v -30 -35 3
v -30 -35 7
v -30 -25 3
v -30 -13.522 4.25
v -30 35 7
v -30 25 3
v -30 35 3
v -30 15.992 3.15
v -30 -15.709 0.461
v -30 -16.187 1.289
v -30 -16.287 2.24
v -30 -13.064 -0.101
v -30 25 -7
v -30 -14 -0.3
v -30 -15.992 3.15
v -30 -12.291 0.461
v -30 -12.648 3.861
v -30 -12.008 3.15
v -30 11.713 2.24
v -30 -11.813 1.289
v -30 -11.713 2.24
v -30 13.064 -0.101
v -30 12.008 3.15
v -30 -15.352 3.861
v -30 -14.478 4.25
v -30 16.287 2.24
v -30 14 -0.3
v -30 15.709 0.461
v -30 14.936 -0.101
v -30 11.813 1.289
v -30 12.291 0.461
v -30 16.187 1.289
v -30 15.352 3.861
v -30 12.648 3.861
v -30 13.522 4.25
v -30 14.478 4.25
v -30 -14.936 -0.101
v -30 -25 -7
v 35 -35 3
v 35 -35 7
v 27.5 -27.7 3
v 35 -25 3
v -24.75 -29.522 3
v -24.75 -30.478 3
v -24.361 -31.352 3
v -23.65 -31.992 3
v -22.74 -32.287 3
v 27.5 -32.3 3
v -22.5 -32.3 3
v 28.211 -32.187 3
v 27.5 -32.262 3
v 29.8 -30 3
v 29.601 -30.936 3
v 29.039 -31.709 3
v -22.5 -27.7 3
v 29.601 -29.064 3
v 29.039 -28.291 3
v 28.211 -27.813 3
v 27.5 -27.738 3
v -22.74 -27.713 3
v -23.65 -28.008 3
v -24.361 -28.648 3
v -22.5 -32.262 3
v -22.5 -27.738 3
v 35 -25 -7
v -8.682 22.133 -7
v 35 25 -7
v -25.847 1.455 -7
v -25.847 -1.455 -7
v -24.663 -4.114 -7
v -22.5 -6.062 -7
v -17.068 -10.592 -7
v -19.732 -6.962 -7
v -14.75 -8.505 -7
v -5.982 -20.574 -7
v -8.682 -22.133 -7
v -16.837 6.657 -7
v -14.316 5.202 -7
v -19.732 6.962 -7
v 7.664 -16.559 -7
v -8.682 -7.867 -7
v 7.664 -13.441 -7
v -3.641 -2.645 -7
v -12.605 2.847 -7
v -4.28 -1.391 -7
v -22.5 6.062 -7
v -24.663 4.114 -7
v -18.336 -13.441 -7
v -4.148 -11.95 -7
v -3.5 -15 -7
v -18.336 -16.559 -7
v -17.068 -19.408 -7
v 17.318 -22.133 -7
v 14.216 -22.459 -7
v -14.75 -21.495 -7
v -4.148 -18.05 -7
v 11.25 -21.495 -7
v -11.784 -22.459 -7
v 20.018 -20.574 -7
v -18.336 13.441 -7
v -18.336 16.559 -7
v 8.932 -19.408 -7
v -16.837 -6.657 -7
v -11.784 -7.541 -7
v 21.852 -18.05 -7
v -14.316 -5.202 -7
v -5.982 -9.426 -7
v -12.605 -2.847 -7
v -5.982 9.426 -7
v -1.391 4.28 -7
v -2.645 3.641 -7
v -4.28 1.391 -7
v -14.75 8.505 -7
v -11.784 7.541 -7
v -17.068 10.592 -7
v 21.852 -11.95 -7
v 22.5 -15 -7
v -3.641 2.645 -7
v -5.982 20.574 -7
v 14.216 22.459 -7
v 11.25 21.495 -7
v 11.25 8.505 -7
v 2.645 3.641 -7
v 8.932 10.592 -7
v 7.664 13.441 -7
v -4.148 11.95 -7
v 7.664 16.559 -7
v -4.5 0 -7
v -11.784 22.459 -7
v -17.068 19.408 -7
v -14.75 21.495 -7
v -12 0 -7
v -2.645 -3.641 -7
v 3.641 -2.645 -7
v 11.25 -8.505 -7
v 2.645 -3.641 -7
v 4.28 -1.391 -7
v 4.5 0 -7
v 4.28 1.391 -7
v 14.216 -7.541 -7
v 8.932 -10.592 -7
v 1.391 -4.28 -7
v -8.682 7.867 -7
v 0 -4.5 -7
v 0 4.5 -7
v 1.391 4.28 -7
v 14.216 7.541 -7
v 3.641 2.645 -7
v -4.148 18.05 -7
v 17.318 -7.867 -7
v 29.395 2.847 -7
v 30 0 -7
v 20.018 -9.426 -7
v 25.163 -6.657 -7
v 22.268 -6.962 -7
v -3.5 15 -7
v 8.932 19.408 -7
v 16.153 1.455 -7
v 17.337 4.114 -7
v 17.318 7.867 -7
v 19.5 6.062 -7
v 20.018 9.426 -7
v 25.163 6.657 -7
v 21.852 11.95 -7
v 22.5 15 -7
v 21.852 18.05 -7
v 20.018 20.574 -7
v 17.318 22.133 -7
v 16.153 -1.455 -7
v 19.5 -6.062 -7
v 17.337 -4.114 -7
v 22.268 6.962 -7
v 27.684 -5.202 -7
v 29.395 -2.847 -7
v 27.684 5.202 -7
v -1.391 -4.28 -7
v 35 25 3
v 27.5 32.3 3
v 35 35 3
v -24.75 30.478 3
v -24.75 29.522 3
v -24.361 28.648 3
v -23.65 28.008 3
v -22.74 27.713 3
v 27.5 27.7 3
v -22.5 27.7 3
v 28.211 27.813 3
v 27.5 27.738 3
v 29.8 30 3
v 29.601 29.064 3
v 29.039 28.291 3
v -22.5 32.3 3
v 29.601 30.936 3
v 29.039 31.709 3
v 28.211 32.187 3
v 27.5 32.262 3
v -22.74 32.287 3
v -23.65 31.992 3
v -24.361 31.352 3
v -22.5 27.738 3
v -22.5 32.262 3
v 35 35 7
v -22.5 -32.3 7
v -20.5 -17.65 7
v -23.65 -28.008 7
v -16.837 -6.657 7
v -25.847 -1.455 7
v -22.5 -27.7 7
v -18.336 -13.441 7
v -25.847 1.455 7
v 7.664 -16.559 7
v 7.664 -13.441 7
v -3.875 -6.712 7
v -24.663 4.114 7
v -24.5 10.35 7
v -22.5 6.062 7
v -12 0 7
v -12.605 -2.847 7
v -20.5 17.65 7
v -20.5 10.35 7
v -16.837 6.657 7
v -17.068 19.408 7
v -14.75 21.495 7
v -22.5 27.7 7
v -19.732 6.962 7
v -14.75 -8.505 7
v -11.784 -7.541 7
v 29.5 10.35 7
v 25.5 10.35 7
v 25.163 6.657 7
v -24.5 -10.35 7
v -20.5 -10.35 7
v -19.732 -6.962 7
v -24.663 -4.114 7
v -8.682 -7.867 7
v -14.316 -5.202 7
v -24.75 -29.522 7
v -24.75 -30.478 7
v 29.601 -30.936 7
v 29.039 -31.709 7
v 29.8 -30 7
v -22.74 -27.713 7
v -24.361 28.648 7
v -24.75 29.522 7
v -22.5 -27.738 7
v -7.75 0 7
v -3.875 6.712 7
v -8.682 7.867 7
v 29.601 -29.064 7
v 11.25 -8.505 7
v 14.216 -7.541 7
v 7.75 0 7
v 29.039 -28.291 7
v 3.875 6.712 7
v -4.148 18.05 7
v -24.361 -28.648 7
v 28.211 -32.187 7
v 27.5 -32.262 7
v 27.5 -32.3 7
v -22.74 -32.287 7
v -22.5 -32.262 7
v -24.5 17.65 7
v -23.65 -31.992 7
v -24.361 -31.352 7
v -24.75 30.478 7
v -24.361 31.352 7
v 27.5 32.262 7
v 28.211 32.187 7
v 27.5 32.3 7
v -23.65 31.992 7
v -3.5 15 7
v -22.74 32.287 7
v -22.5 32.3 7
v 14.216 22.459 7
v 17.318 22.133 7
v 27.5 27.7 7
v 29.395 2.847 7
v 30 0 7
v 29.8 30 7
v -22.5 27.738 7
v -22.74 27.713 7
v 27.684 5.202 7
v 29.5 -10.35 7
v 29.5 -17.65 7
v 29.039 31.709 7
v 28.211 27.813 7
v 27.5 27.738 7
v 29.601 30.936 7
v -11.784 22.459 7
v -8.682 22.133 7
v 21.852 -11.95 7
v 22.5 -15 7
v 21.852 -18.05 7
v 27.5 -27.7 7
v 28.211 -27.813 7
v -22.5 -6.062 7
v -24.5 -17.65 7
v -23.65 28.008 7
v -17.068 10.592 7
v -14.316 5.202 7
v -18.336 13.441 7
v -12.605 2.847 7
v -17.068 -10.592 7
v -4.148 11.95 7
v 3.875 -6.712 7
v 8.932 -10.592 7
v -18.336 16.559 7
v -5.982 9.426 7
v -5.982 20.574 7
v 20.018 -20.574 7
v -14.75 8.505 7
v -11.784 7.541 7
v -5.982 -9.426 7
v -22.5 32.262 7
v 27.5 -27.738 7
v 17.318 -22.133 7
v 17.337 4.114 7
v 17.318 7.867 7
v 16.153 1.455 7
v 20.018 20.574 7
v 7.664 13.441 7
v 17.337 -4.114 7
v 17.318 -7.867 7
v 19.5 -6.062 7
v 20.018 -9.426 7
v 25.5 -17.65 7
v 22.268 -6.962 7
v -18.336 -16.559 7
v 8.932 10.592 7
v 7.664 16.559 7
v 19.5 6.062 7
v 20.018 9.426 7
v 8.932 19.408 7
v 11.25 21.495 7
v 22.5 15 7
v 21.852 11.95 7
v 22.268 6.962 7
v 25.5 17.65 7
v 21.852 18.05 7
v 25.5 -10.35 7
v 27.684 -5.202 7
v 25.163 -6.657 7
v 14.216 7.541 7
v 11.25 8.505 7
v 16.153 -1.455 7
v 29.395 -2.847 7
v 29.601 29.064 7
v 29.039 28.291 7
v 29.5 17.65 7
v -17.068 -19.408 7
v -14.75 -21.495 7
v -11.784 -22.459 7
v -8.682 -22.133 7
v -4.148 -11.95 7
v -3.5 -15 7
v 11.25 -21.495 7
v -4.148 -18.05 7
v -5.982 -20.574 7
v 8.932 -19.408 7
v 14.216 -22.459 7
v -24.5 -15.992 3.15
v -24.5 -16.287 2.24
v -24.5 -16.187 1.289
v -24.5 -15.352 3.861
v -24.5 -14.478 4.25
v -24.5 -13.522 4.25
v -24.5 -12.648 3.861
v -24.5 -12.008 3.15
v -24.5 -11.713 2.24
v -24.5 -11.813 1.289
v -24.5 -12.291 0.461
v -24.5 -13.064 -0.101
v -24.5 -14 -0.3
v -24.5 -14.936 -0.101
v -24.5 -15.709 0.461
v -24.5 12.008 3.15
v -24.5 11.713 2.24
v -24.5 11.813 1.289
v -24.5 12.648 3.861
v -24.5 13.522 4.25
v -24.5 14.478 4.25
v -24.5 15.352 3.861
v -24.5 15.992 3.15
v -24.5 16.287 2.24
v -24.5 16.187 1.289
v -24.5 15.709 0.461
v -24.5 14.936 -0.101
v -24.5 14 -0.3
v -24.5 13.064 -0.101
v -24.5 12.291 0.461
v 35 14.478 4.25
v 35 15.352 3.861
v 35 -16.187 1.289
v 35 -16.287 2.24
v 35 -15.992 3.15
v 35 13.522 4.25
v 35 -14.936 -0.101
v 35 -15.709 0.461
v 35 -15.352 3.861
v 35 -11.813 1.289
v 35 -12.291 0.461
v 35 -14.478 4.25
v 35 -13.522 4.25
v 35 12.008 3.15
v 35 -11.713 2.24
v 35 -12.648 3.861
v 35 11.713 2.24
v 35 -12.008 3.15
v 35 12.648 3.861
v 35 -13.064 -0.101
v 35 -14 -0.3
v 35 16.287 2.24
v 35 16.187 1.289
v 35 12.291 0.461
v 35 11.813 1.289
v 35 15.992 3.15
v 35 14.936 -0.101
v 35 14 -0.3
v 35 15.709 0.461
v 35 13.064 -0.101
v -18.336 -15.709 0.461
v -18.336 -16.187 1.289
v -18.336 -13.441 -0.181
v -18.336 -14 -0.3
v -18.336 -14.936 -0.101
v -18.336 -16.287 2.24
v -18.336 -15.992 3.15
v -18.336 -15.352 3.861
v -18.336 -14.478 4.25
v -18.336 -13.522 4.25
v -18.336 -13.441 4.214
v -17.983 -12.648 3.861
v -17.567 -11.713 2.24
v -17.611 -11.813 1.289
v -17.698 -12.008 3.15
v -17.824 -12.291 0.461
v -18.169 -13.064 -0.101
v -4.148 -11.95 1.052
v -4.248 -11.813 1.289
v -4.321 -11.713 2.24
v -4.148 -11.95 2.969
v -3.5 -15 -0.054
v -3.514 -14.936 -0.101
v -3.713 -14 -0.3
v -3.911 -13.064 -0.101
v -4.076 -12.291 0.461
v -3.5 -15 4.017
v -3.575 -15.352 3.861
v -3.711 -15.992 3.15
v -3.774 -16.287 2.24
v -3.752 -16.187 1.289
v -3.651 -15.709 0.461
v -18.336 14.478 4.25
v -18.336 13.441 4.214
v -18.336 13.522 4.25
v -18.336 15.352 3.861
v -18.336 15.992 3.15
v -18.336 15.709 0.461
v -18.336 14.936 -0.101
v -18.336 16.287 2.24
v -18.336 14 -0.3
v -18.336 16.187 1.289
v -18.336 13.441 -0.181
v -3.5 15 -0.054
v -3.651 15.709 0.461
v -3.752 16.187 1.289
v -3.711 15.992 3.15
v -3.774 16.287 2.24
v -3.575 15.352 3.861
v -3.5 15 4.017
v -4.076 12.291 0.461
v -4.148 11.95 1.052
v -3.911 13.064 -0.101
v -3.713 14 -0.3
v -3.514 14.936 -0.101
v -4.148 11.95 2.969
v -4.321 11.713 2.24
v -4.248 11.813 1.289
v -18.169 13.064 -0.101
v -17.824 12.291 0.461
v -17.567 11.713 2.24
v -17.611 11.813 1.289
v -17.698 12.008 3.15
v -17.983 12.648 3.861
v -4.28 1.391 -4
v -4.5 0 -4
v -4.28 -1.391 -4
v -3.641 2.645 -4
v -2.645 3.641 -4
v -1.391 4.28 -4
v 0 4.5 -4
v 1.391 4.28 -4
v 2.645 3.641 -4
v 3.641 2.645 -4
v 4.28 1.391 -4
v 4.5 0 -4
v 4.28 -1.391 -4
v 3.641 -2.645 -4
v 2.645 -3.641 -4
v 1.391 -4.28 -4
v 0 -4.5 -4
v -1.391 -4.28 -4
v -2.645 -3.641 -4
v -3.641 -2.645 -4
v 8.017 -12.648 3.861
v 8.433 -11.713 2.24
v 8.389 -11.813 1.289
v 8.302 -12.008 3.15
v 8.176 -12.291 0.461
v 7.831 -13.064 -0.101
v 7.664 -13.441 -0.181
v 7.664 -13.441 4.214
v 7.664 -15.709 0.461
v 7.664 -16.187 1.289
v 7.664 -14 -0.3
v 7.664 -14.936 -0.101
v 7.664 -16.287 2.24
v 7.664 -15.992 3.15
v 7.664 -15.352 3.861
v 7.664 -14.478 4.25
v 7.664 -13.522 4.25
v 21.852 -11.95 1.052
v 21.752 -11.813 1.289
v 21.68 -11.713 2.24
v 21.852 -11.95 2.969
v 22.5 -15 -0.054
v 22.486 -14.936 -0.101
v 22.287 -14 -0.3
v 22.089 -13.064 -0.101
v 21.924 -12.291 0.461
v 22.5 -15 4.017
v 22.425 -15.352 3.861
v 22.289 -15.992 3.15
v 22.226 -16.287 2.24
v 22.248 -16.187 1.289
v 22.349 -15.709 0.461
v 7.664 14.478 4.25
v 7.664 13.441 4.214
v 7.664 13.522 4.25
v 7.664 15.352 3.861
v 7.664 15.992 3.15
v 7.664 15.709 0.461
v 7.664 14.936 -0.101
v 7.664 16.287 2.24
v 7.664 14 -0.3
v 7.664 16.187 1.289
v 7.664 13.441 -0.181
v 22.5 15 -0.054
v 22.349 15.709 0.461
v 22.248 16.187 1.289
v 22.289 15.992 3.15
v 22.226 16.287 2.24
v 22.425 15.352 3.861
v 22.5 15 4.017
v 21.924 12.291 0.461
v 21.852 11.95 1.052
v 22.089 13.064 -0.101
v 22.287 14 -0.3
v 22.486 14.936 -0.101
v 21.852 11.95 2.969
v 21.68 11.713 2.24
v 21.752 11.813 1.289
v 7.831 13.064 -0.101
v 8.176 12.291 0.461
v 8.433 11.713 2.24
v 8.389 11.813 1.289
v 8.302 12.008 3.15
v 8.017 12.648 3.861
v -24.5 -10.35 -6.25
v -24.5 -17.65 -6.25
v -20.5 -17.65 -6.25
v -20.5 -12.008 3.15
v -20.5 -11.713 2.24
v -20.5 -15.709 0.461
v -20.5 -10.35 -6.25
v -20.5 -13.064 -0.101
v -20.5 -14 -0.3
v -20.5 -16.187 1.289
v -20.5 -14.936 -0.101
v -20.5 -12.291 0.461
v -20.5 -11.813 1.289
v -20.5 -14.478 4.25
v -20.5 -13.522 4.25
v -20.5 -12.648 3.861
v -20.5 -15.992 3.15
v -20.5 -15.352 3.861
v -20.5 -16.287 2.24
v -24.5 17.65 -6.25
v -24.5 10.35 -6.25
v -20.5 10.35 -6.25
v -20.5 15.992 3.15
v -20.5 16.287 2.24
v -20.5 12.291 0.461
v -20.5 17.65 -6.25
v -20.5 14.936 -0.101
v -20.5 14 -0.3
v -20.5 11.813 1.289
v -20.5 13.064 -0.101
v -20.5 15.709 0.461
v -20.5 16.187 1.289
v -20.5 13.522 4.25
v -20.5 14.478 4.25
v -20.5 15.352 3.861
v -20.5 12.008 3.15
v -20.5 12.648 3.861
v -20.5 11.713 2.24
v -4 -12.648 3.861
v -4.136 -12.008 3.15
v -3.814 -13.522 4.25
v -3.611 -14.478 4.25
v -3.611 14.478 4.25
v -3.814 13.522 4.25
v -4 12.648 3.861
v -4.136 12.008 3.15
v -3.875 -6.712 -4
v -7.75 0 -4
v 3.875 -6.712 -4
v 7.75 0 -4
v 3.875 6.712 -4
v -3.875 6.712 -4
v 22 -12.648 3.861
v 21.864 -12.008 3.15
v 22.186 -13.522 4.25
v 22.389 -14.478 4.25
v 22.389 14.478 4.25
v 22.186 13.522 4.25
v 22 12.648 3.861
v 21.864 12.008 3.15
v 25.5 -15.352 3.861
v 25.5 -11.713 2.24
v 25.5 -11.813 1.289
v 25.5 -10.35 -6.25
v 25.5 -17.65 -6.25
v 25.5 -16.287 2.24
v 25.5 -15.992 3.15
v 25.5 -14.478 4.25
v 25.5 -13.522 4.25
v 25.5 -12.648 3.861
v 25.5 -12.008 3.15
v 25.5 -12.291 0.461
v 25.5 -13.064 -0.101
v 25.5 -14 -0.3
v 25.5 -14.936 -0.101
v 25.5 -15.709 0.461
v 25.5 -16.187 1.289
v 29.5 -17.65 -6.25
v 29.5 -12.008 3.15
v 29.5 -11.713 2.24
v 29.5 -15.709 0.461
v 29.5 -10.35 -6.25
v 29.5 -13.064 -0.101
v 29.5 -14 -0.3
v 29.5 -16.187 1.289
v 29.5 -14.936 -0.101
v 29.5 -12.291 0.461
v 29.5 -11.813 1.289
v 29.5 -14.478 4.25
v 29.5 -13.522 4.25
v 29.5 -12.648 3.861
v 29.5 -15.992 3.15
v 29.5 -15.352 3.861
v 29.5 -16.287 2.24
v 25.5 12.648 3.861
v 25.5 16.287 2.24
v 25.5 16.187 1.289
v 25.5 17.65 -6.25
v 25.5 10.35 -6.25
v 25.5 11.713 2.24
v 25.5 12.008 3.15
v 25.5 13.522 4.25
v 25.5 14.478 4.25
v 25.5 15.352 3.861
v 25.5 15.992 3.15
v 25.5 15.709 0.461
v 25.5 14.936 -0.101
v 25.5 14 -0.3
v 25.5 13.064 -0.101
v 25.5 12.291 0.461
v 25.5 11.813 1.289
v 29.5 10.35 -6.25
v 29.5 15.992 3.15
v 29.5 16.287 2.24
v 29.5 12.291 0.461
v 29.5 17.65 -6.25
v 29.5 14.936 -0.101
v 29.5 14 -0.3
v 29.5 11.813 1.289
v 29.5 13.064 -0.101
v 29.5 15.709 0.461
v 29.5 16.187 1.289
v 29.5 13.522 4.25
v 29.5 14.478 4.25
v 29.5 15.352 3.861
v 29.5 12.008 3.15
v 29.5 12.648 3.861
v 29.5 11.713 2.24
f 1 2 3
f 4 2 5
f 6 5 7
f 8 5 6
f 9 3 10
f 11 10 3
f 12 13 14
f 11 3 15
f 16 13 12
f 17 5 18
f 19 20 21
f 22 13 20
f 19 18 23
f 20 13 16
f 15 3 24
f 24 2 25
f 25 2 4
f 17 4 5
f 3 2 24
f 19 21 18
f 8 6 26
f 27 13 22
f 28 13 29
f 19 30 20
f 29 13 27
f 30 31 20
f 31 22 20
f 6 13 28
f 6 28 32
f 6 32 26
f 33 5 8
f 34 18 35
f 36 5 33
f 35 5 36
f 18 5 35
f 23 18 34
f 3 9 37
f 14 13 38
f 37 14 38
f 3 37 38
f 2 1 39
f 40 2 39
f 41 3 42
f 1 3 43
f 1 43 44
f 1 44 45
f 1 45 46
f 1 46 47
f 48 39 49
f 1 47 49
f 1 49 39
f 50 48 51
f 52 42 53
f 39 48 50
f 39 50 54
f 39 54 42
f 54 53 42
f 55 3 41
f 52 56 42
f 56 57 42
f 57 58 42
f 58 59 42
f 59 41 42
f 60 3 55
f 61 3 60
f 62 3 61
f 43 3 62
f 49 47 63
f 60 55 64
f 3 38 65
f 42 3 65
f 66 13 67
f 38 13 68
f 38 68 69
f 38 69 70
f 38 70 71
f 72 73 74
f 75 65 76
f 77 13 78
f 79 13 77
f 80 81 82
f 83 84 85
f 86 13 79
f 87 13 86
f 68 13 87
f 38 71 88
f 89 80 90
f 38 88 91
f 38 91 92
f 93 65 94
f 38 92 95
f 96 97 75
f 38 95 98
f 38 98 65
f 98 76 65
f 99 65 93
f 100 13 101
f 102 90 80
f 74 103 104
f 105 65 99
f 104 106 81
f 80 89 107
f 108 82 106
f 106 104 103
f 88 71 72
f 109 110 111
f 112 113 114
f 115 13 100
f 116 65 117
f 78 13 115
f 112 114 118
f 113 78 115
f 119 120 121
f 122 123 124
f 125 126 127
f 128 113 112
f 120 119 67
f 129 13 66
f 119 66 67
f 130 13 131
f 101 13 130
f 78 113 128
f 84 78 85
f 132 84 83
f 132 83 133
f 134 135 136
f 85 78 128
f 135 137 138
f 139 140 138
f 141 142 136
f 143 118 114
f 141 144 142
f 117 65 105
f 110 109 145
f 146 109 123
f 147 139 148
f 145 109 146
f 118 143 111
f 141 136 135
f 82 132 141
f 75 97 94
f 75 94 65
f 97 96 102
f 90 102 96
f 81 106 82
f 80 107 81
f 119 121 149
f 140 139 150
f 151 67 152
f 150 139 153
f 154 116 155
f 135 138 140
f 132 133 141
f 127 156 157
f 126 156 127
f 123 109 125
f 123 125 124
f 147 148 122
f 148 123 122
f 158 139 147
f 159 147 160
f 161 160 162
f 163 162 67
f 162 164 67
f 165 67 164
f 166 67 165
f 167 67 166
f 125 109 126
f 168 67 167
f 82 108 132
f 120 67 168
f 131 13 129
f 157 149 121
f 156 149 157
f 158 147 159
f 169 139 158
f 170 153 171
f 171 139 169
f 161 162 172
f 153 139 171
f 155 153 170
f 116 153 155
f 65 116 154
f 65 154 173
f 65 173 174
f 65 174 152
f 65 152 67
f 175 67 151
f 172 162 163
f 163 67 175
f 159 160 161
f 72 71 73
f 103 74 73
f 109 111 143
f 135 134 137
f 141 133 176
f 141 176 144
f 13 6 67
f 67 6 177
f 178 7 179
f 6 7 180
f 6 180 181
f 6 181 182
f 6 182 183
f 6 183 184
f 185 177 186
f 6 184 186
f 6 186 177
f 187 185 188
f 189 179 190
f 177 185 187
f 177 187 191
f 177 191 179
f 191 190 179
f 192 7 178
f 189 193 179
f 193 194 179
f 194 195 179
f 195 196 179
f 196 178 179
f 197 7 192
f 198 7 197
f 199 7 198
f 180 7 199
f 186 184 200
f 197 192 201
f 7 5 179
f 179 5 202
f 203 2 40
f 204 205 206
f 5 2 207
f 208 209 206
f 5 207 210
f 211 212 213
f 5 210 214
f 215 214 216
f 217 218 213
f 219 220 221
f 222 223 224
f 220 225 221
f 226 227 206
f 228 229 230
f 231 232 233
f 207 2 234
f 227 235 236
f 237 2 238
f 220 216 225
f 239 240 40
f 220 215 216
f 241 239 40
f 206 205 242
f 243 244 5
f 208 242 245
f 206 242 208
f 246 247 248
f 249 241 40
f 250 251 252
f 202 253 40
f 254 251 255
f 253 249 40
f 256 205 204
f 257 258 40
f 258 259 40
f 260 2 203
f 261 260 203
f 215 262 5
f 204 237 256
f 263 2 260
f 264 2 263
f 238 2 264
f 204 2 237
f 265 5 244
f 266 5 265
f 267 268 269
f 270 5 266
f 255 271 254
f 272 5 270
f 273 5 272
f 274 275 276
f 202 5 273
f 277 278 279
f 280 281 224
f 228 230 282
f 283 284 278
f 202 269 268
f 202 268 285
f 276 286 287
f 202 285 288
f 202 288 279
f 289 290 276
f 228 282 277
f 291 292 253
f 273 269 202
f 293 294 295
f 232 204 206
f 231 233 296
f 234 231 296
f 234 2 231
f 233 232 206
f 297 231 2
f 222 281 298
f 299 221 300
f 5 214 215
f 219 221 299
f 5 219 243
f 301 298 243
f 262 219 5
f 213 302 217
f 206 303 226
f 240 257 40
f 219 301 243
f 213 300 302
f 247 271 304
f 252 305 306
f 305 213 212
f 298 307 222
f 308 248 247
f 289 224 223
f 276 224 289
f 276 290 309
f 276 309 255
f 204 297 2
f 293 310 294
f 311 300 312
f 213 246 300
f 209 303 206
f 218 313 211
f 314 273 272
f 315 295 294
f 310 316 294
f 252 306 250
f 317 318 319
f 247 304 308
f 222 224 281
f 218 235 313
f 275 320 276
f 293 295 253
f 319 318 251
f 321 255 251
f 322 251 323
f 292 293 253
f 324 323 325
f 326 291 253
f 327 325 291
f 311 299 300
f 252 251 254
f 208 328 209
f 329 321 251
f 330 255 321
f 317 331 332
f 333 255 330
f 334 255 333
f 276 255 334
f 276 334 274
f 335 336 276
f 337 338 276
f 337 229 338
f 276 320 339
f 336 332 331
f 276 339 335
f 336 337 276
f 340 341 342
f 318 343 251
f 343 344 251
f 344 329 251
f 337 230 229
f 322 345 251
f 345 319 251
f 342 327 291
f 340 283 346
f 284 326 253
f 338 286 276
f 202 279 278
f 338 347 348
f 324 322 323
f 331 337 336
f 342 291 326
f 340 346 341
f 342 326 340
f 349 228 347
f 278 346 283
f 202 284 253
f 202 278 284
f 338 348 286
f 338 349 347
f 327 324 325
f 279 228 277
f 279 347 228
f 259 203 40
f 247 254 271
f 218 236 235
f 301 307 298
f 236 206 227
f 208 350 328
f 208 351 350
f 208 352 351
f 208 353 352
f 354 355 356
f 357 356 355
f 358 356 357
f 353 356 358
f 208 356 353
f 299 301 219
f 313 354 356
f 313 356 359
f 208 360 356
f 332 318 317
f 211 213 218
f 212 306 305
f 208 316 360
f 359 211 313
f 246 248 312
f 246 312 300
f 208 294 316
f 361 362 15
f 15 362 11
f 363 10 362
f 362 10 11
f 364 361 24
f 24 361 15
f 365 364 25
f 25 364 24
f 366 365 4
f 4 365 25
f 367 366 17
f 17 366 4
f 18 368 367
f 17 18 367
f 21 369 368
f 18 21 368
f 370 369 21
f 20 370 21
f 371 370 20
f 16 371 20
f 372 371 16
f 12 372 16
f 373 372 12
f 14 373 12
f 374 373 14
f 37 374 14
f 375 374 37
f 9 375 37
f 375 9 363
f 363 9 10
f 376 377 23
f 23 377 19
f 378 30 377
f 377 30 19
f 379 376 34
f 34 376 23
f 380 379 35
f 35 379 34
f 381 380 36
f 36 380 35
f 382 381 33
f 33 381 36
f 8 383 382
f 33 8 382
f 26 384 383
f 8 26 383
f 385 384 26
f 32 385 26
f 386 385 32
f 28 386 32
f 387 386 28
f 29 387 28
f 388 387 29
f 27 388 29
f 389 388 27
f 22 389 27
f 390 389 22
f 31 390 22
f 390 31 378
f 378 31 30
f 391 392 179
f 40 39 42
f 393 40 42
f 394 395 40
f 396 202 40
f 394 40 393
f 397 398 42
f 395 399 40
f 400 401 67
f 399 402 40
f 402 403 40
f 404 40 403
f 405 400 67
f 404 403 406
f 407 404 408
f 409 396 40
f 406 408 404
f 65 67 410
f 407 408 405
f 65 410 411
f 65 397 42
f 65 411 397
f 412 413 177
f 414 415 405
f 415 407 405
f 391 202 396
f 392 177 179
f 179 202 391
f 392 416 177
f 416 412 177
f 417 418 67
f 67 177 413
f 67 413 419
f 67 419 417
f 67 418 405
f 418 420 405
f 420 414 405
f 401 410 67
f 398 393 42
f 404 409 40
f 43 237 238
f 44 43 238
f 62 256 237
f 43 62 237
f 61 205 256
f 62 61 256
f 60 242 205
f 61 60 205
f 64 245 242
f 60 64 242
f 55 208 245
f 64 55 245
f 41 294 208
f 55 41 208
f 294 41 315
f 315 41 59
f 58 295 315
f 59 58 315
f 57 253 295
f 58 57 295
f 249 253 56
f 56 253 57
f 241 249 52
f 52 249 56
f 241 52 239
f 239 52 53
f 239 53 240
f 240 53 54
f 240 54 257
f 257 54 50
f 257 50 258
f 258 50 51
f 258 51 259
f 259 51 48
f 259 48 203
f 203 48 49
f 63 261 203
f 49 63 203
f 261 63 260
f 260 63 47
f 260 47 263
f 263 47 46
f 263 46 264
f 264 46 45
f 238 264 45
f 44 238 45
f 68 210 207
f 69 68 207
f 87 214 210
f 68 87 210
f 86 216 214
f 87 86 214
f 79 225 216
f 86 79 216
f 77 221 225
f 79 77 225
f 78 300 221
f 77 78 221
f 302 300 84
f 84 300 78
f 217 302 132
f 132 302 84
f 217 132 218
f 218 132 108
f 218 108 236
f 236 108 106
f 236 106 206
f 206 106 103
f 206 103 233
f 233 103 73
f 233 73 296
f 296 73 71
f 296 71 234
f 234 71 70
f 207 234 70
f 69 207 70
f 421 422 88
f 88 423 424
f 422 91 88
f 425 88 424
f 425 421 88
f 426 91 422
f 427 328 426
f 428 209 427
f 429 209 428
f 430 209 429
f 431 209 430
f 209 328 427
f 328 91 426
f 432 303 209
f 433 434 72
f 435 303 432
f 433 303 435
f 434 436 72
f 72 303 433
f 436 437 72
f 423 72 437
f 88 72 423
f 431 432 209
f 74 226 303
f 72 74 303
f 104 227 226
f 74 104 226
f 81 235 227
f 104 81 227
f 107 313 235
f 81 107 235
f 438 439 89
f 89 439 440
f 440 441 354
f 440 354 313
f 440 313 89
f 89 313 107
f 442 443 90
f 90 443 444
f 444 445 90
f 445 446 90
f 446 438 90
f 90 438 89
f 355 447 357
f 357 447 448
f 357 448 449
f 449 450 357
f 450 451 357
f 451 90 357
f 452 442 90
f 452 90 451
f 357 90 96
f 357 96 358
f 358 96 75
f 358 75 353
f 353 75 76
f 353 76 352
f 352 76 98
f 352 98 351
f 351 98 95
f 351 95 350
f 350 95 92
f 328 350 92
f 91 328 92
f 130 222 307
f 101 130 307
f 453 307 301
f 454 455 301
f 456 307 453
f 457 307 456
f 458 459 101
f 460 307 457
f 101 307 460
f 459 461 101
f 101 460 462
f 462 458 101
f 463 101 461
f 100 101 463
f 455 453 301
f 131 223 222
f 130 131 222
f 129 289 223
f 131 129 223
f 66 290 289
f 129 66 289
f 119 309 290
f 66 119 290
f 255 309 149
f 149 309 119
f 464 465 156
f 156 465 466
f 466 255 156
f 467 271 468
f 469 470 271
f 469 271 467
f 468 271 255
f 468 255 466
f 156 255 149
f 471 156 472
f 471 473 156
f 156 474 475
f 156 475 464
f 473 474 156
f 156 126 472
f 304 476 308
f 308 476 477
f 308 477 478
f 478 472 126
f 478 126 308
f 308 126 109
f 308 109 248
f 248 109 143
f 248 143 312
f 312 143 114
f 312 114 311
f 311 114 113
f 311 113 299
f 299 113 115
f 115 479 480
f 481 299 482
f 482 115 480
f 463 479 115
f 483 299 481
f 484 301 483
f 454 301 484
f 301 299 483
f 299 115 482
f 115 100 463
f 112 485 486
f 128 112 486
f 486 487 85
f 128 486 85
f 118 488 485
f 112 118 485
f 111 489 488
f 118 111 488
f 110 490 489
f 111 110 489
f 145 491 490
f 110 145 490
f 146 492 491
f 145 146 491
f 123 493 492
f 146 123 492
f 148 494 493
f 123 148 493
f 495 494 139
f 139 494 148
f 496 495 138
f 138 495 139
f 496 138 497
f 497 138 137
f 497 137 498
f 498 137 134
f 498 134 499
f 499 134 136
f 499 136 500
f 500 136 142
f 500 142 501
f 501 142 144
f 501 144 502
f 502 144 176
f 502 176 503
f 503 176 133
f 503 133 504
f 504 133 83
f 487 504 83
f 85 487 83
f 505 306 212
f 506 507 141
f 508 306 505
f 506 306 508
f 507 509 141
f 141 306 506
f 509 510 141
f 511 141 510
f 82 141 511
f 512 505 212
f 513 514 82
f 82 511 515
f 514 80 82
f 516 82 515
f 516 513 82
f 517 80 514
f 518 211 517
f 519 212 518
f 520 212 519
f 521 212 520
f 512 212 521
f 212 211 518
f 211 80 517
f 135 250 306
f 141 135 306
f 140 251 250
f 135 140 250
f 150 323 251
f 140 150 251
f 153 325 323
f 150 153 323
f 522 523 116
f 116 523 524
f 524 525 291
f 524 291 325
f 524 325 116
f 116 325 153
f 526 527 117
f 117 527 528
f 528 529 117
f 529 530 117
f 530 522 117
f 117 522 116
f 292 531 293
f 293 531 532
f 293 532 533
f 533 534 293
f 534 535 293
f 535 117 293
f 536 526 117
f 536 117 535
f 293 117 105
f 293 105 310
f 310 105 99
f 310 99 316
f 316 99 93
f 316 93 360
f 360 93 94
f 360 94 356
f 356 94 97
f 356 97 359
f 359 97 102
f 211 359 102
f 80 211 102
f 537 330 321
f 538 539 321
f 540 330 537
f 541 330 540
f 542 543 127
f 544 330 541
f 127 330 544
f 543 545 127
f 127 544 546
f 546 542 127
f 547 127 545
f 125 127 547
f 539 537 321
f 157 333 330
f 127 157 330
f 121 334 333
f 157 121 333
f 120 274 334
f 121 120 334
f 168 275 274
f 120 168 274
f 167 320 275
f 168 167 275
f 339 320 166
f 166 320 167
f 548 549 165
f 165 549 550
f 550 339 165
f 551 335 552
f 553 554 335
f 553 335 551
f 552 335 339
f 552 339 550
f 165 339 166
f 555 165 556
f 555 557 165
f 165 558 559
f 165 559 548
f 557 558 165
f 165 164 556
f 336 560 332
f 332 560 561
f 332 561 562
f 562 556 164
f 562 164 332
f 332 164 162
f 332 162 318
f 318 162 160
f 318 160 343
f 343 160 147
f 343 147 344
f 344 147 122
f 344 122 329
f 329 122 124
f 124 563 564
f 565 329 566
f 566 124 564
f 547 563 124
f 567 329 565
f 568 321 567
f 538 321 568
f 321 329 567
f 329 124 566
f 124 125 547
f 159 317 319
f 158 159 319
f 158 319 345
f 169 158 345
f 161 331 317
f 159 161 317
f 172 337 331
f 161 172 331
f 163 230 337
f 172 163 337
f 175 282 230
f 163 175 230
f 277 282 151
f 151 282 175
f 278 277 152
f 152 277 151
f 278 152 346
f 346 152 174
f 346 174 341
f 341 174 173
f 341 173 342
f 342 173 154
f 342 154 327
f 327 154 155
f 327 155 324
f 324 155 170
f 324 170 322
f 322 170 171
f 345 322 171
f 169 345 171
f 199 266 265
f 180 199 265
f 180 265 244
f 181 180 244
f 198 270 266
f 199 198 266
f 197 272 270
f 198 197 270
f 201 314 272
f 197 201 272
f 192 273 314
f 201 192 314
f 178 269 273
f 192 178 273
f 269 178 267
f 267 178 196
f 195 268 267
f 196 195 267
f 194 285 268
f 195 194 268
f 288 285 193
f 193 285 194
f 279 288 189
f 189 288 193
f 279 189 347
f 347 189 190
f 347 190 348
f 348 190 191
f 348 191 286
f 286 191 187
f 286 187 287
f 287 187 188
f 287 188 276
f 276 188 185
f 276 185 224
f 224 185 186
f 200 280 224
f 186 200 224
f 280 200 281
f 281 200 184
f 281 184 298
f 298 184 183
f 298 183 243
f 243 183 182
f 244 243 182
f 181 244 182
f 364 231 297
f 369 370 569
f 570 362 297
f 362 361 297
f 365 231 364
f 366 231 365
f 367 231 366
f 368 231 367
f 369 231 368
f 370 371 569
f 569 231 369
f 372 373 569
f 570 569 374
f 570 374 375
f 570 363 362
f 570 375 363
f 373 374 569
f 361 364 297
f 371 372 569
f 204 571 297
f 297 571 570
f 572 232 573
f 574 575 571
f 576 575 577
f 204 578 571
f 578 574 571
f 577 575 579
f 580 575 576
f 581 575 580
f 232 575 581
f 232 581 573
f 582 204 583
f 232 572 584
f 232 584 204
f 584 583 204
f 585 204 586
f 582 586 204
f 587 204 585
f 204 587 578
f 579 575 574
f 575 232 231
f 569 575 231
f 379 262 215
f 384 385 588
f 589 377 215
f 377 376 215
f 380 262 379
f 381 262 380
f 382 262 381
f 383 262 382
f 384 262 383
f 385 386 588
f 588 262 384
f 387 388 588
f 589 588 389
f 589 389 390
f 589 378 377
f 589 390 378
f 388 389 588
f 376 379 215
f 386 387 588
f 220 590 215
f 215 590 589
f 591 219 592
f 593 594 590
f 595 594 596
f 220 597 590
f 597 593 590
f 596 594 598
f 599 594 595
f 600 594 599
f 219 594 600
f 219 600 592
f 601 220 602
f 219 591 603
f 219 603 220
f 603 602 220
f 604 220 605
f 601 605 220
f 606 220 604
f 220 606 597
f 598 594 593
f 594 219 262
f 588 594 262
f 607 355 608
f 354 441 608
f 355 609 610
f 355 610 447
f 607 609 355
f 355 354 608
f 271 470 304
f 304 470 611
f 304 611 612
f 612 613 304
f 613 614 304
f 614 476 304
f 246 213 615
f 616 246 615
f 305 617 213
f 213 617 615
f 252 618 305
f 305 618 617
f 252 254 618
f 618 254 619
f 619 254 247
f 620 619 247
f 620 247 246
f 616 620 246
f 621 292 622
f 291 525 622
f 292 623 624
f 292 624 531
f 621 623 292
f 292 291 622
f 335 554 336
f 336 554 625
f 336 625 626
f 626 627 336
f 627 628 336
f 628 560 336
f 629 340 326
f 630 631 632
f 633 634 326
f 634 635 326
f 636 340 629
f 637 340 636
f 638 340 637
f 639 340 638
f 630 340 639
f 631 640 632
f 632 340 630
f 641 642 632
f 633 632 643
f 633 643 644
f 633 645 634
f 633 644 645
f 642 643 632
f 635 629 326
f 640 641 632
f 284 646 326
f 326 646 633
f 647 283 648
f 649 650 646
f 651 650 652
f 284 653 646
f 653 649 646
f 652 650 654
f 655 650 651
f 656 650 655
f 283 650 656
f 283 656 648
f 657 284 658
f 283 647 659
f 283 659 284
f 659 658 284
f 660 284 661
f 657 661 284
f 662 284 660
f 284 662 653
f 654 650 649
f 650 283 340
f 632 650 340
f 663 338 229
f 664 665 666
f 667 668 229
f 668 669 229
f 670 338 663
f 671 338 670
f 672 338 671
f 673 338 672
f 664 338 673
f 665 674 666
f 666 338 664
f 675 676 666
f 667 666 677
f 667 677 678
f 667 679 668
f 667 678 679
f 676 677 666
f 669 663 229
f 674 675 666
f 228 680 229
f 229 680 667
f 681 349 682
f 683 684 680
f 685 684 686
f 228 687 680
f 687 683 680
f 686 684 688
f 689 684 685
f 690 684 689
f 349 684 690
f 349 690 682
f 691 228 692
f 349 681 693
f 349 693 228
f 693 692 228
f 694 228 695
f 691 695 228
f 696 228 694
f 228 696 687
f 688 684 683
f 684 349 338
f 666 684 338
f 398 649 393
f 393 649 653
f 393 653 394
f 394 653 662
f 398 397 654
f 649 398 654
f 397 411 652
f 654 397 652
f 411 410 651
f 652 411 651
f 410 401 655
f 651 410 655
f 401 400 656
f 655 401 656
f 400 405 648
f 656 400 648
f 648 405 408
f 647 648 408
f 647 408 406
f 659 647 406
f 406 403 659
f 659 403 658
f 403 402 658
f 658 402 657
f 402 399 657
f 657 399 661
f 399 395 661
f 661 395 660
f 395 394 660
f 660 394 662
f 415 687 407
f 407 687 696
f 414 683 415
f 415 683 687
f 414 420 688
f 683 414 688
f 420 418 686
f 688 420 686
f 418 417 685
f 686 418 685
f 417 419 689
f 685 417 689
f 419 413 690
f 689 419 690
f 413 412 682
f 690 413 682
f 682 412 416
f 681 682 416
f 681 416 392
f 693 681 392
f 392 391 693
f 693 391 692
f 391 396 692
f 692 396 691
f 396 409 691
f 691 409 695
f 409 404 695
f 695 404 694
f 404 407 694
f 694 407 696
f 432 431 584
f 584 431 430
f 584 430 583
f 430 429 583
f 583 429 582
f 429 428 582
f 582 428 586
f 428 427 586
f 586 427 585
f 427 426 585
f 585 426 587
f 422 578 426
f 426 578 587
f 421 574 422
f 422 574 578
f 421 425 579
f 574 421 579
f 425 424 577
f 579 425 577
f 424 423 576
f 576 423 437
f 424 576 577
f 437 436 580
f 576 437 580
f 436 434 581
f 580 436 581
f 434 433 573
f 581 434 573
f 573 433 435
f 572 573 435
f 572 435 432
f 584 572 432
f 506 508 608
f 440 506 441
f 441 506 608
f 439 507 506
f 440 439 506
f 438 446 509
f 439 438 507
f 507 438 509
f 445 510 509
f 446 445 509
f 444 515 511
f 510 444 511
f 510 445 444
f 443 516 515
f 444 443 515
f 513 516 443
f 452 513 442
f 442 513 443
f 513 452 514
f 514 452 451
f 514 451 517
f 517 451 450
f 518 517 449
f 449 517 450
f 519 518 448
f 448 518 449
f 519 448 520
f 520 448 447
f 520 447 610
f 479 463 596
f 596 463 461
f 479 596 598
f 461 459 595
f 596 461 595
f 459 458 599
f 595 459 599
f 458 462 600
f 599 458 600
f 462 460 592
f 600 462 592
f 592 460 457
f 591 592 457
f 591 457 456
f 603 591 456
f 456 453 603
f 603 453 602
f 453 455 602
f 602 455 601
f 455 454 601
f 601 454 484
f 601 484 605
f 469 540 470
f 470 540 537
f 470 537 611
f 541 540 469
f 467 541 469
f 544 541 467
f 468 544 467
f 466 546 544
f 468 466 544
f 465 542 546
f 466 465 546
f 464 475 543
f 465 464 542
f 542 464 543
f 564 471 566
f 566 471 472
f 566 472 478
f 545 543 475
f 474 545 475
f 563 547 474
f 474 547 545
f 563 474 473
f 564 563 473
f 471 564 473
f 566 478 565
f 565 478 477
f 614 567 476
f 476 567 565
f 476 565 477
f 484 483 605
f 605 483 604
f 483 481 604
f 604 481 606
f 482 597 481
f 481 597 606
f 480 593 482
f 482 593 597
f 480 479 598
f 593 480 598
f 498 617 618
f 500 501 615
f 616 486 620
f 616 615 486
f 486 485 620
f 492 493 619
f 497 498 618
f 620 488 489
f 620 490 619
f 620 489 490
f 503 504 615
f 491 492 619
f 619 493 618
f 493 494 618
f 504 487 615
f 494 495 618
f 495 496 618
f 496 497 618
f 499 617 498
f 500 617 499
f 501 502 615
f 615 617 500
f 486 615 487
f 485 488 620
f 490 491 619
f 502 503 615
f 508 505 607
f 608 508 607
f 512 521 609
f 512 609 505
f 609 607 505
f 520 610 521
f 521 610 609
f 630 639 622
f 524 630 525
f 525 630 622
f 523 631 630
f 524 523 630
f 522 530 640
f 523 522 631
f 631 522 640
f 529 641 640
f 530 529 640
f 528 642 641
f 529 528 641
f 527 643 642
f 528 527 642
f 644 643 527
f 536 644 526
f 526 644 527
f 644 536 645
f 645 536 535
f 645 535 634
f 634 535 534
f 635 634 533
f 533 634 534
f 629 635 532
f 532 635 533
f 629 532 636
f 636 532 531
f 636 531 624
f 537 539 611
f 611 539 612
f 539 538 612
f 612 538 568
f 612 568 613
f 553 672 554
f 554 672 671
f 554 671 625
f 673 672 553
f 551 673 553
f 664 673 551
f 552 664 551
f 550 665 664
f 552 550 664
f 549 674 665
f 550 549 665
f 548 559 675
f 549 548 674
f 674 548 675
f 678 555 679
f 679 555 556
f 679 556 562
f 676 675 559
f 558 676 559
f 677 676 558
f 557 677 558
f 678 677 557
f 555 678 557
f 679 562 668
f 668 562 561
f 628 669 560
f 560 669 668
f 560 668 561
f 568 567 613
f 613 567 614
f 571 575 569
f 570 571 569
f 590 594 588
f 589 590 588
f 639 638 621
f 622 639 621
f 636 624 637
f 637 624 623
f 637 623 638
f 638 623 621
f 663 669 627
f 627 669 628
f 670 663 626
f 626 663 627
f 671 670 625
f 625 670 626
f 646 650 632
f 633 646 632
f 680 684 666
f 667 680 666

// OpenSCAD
ancho_pared=7;

module tensor(){
	difference(){

		cube([20,40,10],center=true);
		
		translate([0,0,-4])
		cylinder(r=15.5/2,h=100, $fn=6);

		cylinder(r=8.5/2,h=100, center=true, $fn=20);


		translate([20,0,0]) rotate([0,0,0])
		cube([20,40,40],center=true);

		translate([0,14,0]) rotate([0,90,0])
		cylinder(r=4.2/2,h=100,center=true , $fn=15);

		translate([0,-14,0]) rotate([0,90,0])
		cylinder(r=4.2/2,h=100,center=true , $fn=15);

		translate([-6,-14,0.75]) rotate([0,0,0])
		cube([4,7.30,10],center=true);

		translate([-6,14,0.75]) rotate([0,0,0])
		cube([4,7.30,10],center=true);
	}
}
module placa(){
	difference(){	
		cube([ancho_pared+20+20,40,5],center=true);
		
		translate([ancho_pared+20/2,14,0]) rotate([0,0,0])
		cylinder(r=4.6/2,h=100,center=true , $fn=15);

		translate([0,14,0]) rotate([0,0,0])
		cylinder(r=4.6/2,h=100,center=true , $fn=15);

		translate([ancho_pared+20/2,-14,0]) rotate([0,0,0])
		cylinder(r=4.6/2,h=100,center=true , $fn=15);

		translate([0,-14,0]) rotate([0,0,0])
		cylinder(r=4.6/2,h=100,center=true , $fn=15);
		
		translate([-ancho_pared-20/2,14,0]) rotate([0,0,0])
		cylinder(r=4.6/2,h=100,center=true , $fn=15);

		translate([-ancho_pared-20/2,-14,0]) rotate([0,0,0])
		cylinder(r=4.6/2,h=100,center=true , $fn=15);
	

	}
}

module cubre_tensor(){
	difference(){
		
		//CUERPO CENTRAL
		union(){
			cube([60,50,14],center=true);
			
			
			//pestañas de montaje
			translate([2.5,60/2,5]) rotate([0,0,0])
			cube([65,10,4],center=true);

			translate([2.5,-60/2,5]) rotate([0,0,0])
			cube([65,10,4],center=true);

			
			
			//suplemento
			translate([60/2,0,0]) rotate([0,0,0])
			cube([10,50,14],center=true);
			
		}
		//VACIADO CUERPO CENTRAL
		translate([0,0,3]) rotate([0,0,0])
		//cube([50,42,16],center=true);
		cylinder(r=15.5/2,h=14, $fn=6, center=true);
		
		//AGUJERO TENSOR
		translate([0,14,2]) rotate([0,90,0])
		cylinder(r=4.6/2,h=100,center=true , $fn=15);

		
		//AGUJERO TENSOR
		translate([0,-14,2]) rotate([0,90,0])
		cylinder(r=4.6/2,h=100,center=true , $fn=15);
	
		//AGUJERO INFERIOR EJE

		//cube ([40,10,100], center=true);
		
		cylinder(r=9/2,h=100, $fn=20, center=true);		

		//alojmaiento tuerca

		translate([55/2,14,0.75]) rotate([0,0,0])
		cube([4,7.30,14],center=true);
		
		translate([55/2,-14,0.75]) rotate([0,0,0])
		cube([4,7.30,14],center=true);

		

		translate([-45/2,14,0.75]) rotate([0,0,0])
		cube([4,7.30,14],center=true);
		
		translate([-45/2,-14,0.75]) rotate([0,0,0])
		cube([4,7.30,14],center=true);
		
		//agujero montaje
		translate([55/2,60/2,0]) rotate([0,0,0])
		cylinder(r=4.6/2,h=100,center=true , $fn=15);
		
		translate([-45/2,60/2,0]) rotate([0,0,0])
		cylinder(r=4.6/2,h=100,center=true , $fn=15);

		translate([55/2,-60/2,0]) rotate([0,0,0])
		cylinder(r=4.6/2,h=100,center=true , $fn=15);

		translate([-45/2,-60/2,0]) rotate([0,0,0])
		cylinder(r=4.6/2,h=100,center=true , $fn=15);
		
		translate([-45/2,-60/2,0]) rotate([0,0,0])
		cylinder(r=4.6/2,h=100,center=true , $fn=15);

		translate([2.5,60/2,5]) rotate([0,0,0])
			cube([50,4.60,100],center=true);

		translate([2.5,-60/2,5]) rotate([0,0,0])
			cube([50,4.60,100],center=true);
		

		//agujeros para aligerar
		translate([15,15,0]) rotate([0,0,0])
		cylinder(r=15/2,h=100,center=true , $fn=15);
		translate([-11,15,0]) rotate([0,0,0])
		cylinder(r=15/2,h=100,center=true , $fn=15);
		translate([15,-15,0]) rotate([0,0,0])
		cylinder(r=15/2,h=100,center=true , $fn=15);
		translate([-11,-15,0]) rotate([0,0,0])
		cylinder(r=15/2,h=100,center=true , $fn=15);

		translate([-19,0,0]) rotate([0,0,0])
		cylinder(r=14/2,h=100,center=true , $fn=15);
		translate([23,0,0]) rotate([0,0,0])
		cylinder(r=14/2,h=100,center=true , $fn=15);
	}
}

module tensor_liso(){
	difference(){

		cube([20,40,10],center=true);
		
		translate([0,0,-4])
		//cylinder(r=15.5/2,h=100, $fn=6);

		cylinder(r=8.5/2,h=100, center=true, $fn=20);


		translate([20,0,0]) rotate([0,0,0])
		cube([20,40,40],center=true);

		translate([0,14,0]) rotate([0,90,0])
		cylinder(r=4.2/2,h=100,center=true , $fn=15);

		translate([0,-14,0]) rotate([0,90,0])
		cylinder(r=4.2/2,h=100,center=true , $fn=15);

		translate([-6,-14,0.75]) rotate([0,0,0])
		cube([4,7.30,10],center=true);

		translate([-6,14,0.75]) rotate([0,0,0])
		cube([4,7.30,10],center=true);
	}
}


//translate([50,0,2]) rotate([0,0,0])
//tensor();

//translate([0,70,2.5]) rotate([0,0,0])
//placa();

translate([0,0,0]) rotate([0,0,0])
cubre_tensor();

//translate([-50,0,2]) rotate([0,0,0])
//tensor_liso();
